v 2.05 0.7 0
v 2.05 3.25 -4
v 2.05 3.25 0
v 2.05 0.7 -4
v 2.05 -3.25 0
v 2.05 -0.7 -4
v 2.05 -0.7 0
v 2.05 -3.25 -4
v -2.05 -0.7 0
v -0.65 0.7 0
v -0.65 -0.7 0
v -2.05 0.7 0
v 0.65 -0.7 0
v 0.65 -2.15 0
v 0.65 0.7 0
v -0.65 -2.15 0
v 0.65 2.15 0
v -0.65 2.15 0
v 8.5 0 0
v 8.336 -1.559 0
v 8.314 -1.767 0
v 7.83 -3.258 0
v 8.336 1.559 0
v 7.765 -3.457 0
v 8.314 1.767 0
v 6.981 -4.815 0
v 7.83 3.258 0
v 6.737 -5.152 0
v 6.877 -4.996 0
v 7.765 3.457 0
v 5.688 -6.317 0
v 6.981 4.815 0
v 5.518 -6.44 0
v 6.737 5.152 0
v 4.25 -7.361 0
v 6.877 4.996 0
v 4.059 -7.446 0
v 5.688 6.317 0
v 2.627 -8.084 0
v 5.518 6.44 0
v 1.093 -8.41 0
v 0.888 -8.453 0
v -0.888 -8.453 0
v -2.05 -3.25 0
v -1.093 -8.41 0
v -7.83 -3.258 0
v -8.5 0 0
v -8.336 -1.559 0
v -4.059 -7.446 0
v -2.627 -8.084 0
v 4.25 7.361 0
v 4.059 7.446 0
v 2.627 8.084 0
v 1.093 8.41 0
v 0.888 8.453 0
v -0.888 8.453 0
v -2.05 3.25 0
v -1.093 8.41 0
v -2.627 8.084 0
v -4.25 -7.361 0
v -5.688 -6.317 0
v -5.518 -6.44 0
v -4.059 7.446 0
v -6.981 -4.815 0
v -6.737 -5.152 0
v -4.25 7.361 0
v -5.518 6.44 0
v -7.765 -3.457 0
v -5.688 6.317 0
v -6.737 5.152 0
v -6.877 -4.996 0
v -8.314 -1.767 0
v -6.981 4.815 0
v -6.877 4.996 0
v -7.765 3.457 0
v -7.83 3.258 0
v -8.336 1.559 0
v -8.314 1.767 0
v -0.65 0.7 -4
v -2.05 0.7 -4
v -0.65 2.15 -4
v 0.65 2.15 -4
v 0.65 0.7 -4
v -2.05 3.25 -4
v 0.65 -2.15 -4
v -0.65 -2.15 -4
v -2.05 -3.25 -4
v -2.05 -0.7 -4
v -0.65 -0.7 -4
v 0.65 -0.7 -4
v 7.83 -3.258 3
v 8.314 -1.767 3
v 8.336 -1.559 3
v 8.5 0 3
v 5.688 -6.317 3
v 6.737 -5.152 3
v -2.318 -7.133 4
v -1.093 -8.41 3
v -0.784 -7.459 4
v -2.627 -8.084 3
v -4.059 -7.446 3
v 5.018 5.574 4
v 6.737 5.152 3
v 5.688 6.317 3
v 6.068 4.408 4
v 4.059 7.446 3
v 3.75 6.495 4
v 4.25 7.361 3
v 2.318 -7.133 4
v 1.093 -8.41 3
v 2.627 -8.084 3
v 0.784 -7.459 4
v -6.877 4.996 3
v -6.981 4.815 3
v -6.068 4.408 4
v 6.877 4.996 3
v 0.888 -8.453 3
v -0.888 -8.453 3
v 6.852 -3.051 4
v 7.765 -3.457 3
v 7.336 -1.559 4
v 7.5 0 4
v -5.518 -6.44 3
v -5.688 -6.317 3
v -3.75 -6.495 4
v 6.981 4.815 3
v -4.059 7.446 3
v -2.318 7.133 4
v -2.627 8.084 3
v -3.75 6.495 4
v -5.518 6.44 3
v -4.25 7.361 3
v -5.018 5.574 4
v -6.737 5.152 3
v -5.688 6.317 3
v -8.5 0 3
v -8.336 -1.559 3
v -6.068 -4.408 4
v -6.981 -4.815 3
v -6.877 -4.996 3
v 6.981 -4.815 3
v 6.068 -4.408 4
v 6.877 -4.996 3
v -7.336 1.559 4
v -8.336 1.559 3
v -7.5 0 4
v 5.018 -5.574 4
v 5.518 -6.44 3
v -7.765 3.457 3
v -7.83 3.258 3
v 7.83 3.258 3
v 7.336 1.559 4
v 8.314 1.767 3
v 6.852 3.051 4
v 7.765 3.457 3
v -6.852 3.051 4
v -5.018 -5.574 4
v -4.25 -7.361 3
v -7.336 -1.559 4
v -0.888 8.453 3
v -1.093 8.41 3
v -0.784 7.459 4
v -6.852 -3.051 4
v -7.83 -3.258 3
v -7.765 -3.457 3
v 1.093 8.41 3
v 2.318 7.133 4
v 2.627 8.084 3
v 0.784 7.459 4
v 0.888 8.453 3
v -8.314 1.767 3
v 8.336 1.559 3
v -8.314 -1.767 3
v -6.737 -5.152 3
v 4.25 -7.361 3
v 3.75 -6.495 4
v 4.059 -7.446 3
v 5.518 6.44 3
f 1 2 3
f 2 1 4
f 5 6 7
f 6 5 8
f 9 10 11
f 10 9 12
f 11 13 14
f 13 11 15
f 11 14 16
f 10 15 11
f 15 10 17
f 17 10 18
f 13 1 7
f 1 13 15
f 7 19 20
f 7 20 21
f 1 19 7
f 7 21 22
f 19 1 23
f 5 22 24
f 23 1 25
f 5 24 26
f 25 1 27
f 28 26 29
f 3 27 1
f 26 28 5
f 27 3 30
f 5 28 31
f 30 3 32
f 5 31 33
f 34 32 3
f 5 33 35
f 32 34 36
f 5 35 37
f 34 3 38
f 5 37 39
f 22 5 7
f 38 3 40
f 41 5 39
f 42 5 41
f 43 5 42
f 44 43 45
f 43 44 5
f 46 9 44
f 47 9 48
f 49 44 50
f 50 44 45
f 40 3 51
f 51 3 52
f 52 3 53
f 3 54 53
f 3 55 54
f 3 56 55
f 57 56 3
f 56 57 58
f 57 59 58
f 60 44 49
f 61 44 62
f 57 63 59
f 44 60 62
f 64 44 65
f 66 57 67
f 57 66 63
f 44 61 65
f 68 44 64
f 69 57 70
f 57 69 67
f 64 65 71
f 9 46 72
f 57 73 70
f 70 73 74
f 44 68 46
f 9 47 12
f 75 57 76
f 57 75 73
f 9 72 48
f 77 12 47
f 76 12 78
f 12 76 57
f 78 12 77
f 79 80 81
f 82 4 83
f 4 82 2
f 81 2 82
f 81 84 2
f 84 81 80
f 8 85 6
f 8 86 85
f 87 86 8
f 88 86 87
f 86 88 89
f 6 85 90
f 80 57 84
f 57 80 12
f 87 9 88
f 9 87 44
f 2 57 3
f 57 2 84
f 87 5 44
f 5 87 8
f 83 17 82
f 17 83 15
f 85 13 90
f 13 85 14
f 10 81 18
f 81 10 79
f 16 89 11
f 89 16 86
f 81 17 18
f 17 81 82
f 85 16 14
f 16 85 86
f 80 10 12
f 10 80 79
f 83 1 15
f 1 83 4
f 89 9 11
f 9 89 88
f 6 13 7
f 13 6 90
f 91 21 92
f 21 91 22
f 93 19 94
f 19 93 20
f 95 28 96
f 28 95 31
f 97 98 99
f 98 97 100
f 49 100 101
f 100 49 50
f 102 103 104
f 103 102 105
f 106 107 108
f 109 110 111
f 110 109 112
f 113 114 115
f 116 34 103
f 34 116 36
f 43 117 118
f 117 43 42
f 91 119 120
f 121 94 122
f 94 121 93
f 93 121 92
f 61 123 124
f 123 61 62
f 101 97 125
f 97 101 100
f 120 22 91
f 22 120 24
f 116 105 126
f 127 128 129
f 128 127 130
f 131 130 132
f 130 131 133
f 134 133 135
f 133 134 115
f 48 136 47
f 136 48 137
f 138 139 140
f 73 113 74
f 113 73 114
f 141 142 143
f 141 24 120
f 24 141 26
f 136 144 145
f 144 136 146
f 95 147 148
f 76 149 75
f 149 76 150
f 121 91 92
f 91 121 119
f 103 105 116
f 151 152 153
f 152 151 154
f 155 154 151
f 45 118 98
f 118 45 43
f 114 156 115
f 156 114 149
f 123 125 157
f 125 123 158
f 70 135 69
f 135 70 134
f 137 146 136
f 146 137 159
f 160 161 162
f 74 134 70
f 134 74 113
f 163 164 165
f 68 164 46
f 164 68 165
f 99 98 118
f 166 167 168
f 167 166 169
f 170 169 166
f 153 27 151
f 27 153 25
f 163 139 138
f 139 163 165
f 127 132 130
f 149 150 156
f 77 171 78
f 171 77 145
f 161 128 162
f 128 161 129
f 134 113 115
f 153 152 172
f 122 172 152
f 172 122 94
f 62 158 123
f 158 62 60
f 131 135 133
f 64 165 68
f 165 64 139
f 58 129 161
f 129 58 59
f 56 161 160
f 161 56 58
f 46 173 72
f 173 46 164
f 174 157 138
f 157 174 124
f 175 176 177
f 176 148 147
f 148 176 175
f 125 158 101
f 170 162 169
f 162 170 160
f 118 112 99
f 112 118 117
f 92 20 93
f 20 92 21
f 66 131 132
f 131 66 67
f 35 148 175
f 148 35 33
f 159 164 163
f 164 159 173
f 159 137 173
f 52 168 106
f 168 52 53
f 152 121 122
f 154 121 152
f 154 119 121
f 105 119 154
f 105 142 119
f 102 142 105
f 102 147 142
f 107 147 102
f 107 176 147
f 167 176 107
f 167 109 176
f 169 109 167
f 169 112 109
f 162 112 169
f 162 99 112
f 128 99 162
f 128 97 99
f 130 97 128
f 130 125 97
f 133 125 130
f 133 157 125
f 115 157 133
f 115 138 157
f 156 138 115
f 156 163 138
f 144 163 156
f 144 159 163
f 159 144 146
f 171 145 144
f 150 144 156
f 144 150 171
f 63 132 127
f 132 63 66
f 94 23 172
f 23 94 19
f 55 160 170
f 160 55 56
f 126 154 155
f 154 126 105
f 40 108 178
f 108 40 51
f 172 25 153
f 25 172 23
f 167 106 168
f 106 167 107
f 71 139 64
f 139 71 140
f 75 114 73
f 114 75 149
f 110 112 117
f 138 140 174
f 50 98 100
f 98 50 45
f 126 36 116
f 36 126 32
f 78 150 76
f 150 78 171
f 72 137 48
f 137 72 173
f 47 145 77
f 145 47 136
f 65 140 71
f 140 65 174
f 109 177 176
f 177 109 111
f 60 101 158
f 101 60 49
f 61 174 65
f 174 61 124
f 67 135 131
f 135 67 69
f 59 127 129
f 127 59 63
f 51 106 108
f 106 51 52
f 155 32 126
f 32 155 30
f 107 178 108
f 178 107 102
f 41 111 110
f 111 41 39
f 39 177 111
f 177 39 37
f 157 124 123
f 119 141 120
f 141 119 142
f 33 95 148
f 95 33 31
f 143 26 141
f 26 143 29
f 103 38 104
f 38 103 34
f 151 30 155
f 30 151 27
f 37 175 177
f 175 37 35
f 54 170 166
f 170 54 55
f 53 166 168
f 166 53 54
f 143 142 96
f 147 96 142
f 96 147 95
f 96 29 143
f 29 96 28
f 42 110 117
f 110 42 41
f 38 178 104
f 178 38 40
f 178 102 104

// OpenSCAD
$fs = 0.01;
keytop_diameter = 17; 
keytop_height = 4;
stem_thickness = 1.3;
stem_size_x = 4.1;
stem_size_y = 6.5;
stem_size_z = 4.0;




module cylinderOneSideChamfered (diameter, height, depth) 
{
    minkowski () {
        cylinder(d = diameter-2*depth, h = height-(1*depth));
        cylinder(h= depth, r1 = depth, r2 =0);
    }
}

cylinderOneSideChamfered(keytop_diameter, keytop_height, 1);

//cylinder(d = keytop_diameter, h = keytop_height);

translate([0, 0, -stem_size_z/2]) {
    difference () {
        cube([stem_size_x,stem_size_y,stem_size_z], center=true);
            cube([stem_thickness,stem_size_x+0.2,stem_size_z+0.1], center=true);
            cube([stem_size_x+0.1,stem_thickness+0.1,stem_size_z+0.1], center=true);
    }
}
